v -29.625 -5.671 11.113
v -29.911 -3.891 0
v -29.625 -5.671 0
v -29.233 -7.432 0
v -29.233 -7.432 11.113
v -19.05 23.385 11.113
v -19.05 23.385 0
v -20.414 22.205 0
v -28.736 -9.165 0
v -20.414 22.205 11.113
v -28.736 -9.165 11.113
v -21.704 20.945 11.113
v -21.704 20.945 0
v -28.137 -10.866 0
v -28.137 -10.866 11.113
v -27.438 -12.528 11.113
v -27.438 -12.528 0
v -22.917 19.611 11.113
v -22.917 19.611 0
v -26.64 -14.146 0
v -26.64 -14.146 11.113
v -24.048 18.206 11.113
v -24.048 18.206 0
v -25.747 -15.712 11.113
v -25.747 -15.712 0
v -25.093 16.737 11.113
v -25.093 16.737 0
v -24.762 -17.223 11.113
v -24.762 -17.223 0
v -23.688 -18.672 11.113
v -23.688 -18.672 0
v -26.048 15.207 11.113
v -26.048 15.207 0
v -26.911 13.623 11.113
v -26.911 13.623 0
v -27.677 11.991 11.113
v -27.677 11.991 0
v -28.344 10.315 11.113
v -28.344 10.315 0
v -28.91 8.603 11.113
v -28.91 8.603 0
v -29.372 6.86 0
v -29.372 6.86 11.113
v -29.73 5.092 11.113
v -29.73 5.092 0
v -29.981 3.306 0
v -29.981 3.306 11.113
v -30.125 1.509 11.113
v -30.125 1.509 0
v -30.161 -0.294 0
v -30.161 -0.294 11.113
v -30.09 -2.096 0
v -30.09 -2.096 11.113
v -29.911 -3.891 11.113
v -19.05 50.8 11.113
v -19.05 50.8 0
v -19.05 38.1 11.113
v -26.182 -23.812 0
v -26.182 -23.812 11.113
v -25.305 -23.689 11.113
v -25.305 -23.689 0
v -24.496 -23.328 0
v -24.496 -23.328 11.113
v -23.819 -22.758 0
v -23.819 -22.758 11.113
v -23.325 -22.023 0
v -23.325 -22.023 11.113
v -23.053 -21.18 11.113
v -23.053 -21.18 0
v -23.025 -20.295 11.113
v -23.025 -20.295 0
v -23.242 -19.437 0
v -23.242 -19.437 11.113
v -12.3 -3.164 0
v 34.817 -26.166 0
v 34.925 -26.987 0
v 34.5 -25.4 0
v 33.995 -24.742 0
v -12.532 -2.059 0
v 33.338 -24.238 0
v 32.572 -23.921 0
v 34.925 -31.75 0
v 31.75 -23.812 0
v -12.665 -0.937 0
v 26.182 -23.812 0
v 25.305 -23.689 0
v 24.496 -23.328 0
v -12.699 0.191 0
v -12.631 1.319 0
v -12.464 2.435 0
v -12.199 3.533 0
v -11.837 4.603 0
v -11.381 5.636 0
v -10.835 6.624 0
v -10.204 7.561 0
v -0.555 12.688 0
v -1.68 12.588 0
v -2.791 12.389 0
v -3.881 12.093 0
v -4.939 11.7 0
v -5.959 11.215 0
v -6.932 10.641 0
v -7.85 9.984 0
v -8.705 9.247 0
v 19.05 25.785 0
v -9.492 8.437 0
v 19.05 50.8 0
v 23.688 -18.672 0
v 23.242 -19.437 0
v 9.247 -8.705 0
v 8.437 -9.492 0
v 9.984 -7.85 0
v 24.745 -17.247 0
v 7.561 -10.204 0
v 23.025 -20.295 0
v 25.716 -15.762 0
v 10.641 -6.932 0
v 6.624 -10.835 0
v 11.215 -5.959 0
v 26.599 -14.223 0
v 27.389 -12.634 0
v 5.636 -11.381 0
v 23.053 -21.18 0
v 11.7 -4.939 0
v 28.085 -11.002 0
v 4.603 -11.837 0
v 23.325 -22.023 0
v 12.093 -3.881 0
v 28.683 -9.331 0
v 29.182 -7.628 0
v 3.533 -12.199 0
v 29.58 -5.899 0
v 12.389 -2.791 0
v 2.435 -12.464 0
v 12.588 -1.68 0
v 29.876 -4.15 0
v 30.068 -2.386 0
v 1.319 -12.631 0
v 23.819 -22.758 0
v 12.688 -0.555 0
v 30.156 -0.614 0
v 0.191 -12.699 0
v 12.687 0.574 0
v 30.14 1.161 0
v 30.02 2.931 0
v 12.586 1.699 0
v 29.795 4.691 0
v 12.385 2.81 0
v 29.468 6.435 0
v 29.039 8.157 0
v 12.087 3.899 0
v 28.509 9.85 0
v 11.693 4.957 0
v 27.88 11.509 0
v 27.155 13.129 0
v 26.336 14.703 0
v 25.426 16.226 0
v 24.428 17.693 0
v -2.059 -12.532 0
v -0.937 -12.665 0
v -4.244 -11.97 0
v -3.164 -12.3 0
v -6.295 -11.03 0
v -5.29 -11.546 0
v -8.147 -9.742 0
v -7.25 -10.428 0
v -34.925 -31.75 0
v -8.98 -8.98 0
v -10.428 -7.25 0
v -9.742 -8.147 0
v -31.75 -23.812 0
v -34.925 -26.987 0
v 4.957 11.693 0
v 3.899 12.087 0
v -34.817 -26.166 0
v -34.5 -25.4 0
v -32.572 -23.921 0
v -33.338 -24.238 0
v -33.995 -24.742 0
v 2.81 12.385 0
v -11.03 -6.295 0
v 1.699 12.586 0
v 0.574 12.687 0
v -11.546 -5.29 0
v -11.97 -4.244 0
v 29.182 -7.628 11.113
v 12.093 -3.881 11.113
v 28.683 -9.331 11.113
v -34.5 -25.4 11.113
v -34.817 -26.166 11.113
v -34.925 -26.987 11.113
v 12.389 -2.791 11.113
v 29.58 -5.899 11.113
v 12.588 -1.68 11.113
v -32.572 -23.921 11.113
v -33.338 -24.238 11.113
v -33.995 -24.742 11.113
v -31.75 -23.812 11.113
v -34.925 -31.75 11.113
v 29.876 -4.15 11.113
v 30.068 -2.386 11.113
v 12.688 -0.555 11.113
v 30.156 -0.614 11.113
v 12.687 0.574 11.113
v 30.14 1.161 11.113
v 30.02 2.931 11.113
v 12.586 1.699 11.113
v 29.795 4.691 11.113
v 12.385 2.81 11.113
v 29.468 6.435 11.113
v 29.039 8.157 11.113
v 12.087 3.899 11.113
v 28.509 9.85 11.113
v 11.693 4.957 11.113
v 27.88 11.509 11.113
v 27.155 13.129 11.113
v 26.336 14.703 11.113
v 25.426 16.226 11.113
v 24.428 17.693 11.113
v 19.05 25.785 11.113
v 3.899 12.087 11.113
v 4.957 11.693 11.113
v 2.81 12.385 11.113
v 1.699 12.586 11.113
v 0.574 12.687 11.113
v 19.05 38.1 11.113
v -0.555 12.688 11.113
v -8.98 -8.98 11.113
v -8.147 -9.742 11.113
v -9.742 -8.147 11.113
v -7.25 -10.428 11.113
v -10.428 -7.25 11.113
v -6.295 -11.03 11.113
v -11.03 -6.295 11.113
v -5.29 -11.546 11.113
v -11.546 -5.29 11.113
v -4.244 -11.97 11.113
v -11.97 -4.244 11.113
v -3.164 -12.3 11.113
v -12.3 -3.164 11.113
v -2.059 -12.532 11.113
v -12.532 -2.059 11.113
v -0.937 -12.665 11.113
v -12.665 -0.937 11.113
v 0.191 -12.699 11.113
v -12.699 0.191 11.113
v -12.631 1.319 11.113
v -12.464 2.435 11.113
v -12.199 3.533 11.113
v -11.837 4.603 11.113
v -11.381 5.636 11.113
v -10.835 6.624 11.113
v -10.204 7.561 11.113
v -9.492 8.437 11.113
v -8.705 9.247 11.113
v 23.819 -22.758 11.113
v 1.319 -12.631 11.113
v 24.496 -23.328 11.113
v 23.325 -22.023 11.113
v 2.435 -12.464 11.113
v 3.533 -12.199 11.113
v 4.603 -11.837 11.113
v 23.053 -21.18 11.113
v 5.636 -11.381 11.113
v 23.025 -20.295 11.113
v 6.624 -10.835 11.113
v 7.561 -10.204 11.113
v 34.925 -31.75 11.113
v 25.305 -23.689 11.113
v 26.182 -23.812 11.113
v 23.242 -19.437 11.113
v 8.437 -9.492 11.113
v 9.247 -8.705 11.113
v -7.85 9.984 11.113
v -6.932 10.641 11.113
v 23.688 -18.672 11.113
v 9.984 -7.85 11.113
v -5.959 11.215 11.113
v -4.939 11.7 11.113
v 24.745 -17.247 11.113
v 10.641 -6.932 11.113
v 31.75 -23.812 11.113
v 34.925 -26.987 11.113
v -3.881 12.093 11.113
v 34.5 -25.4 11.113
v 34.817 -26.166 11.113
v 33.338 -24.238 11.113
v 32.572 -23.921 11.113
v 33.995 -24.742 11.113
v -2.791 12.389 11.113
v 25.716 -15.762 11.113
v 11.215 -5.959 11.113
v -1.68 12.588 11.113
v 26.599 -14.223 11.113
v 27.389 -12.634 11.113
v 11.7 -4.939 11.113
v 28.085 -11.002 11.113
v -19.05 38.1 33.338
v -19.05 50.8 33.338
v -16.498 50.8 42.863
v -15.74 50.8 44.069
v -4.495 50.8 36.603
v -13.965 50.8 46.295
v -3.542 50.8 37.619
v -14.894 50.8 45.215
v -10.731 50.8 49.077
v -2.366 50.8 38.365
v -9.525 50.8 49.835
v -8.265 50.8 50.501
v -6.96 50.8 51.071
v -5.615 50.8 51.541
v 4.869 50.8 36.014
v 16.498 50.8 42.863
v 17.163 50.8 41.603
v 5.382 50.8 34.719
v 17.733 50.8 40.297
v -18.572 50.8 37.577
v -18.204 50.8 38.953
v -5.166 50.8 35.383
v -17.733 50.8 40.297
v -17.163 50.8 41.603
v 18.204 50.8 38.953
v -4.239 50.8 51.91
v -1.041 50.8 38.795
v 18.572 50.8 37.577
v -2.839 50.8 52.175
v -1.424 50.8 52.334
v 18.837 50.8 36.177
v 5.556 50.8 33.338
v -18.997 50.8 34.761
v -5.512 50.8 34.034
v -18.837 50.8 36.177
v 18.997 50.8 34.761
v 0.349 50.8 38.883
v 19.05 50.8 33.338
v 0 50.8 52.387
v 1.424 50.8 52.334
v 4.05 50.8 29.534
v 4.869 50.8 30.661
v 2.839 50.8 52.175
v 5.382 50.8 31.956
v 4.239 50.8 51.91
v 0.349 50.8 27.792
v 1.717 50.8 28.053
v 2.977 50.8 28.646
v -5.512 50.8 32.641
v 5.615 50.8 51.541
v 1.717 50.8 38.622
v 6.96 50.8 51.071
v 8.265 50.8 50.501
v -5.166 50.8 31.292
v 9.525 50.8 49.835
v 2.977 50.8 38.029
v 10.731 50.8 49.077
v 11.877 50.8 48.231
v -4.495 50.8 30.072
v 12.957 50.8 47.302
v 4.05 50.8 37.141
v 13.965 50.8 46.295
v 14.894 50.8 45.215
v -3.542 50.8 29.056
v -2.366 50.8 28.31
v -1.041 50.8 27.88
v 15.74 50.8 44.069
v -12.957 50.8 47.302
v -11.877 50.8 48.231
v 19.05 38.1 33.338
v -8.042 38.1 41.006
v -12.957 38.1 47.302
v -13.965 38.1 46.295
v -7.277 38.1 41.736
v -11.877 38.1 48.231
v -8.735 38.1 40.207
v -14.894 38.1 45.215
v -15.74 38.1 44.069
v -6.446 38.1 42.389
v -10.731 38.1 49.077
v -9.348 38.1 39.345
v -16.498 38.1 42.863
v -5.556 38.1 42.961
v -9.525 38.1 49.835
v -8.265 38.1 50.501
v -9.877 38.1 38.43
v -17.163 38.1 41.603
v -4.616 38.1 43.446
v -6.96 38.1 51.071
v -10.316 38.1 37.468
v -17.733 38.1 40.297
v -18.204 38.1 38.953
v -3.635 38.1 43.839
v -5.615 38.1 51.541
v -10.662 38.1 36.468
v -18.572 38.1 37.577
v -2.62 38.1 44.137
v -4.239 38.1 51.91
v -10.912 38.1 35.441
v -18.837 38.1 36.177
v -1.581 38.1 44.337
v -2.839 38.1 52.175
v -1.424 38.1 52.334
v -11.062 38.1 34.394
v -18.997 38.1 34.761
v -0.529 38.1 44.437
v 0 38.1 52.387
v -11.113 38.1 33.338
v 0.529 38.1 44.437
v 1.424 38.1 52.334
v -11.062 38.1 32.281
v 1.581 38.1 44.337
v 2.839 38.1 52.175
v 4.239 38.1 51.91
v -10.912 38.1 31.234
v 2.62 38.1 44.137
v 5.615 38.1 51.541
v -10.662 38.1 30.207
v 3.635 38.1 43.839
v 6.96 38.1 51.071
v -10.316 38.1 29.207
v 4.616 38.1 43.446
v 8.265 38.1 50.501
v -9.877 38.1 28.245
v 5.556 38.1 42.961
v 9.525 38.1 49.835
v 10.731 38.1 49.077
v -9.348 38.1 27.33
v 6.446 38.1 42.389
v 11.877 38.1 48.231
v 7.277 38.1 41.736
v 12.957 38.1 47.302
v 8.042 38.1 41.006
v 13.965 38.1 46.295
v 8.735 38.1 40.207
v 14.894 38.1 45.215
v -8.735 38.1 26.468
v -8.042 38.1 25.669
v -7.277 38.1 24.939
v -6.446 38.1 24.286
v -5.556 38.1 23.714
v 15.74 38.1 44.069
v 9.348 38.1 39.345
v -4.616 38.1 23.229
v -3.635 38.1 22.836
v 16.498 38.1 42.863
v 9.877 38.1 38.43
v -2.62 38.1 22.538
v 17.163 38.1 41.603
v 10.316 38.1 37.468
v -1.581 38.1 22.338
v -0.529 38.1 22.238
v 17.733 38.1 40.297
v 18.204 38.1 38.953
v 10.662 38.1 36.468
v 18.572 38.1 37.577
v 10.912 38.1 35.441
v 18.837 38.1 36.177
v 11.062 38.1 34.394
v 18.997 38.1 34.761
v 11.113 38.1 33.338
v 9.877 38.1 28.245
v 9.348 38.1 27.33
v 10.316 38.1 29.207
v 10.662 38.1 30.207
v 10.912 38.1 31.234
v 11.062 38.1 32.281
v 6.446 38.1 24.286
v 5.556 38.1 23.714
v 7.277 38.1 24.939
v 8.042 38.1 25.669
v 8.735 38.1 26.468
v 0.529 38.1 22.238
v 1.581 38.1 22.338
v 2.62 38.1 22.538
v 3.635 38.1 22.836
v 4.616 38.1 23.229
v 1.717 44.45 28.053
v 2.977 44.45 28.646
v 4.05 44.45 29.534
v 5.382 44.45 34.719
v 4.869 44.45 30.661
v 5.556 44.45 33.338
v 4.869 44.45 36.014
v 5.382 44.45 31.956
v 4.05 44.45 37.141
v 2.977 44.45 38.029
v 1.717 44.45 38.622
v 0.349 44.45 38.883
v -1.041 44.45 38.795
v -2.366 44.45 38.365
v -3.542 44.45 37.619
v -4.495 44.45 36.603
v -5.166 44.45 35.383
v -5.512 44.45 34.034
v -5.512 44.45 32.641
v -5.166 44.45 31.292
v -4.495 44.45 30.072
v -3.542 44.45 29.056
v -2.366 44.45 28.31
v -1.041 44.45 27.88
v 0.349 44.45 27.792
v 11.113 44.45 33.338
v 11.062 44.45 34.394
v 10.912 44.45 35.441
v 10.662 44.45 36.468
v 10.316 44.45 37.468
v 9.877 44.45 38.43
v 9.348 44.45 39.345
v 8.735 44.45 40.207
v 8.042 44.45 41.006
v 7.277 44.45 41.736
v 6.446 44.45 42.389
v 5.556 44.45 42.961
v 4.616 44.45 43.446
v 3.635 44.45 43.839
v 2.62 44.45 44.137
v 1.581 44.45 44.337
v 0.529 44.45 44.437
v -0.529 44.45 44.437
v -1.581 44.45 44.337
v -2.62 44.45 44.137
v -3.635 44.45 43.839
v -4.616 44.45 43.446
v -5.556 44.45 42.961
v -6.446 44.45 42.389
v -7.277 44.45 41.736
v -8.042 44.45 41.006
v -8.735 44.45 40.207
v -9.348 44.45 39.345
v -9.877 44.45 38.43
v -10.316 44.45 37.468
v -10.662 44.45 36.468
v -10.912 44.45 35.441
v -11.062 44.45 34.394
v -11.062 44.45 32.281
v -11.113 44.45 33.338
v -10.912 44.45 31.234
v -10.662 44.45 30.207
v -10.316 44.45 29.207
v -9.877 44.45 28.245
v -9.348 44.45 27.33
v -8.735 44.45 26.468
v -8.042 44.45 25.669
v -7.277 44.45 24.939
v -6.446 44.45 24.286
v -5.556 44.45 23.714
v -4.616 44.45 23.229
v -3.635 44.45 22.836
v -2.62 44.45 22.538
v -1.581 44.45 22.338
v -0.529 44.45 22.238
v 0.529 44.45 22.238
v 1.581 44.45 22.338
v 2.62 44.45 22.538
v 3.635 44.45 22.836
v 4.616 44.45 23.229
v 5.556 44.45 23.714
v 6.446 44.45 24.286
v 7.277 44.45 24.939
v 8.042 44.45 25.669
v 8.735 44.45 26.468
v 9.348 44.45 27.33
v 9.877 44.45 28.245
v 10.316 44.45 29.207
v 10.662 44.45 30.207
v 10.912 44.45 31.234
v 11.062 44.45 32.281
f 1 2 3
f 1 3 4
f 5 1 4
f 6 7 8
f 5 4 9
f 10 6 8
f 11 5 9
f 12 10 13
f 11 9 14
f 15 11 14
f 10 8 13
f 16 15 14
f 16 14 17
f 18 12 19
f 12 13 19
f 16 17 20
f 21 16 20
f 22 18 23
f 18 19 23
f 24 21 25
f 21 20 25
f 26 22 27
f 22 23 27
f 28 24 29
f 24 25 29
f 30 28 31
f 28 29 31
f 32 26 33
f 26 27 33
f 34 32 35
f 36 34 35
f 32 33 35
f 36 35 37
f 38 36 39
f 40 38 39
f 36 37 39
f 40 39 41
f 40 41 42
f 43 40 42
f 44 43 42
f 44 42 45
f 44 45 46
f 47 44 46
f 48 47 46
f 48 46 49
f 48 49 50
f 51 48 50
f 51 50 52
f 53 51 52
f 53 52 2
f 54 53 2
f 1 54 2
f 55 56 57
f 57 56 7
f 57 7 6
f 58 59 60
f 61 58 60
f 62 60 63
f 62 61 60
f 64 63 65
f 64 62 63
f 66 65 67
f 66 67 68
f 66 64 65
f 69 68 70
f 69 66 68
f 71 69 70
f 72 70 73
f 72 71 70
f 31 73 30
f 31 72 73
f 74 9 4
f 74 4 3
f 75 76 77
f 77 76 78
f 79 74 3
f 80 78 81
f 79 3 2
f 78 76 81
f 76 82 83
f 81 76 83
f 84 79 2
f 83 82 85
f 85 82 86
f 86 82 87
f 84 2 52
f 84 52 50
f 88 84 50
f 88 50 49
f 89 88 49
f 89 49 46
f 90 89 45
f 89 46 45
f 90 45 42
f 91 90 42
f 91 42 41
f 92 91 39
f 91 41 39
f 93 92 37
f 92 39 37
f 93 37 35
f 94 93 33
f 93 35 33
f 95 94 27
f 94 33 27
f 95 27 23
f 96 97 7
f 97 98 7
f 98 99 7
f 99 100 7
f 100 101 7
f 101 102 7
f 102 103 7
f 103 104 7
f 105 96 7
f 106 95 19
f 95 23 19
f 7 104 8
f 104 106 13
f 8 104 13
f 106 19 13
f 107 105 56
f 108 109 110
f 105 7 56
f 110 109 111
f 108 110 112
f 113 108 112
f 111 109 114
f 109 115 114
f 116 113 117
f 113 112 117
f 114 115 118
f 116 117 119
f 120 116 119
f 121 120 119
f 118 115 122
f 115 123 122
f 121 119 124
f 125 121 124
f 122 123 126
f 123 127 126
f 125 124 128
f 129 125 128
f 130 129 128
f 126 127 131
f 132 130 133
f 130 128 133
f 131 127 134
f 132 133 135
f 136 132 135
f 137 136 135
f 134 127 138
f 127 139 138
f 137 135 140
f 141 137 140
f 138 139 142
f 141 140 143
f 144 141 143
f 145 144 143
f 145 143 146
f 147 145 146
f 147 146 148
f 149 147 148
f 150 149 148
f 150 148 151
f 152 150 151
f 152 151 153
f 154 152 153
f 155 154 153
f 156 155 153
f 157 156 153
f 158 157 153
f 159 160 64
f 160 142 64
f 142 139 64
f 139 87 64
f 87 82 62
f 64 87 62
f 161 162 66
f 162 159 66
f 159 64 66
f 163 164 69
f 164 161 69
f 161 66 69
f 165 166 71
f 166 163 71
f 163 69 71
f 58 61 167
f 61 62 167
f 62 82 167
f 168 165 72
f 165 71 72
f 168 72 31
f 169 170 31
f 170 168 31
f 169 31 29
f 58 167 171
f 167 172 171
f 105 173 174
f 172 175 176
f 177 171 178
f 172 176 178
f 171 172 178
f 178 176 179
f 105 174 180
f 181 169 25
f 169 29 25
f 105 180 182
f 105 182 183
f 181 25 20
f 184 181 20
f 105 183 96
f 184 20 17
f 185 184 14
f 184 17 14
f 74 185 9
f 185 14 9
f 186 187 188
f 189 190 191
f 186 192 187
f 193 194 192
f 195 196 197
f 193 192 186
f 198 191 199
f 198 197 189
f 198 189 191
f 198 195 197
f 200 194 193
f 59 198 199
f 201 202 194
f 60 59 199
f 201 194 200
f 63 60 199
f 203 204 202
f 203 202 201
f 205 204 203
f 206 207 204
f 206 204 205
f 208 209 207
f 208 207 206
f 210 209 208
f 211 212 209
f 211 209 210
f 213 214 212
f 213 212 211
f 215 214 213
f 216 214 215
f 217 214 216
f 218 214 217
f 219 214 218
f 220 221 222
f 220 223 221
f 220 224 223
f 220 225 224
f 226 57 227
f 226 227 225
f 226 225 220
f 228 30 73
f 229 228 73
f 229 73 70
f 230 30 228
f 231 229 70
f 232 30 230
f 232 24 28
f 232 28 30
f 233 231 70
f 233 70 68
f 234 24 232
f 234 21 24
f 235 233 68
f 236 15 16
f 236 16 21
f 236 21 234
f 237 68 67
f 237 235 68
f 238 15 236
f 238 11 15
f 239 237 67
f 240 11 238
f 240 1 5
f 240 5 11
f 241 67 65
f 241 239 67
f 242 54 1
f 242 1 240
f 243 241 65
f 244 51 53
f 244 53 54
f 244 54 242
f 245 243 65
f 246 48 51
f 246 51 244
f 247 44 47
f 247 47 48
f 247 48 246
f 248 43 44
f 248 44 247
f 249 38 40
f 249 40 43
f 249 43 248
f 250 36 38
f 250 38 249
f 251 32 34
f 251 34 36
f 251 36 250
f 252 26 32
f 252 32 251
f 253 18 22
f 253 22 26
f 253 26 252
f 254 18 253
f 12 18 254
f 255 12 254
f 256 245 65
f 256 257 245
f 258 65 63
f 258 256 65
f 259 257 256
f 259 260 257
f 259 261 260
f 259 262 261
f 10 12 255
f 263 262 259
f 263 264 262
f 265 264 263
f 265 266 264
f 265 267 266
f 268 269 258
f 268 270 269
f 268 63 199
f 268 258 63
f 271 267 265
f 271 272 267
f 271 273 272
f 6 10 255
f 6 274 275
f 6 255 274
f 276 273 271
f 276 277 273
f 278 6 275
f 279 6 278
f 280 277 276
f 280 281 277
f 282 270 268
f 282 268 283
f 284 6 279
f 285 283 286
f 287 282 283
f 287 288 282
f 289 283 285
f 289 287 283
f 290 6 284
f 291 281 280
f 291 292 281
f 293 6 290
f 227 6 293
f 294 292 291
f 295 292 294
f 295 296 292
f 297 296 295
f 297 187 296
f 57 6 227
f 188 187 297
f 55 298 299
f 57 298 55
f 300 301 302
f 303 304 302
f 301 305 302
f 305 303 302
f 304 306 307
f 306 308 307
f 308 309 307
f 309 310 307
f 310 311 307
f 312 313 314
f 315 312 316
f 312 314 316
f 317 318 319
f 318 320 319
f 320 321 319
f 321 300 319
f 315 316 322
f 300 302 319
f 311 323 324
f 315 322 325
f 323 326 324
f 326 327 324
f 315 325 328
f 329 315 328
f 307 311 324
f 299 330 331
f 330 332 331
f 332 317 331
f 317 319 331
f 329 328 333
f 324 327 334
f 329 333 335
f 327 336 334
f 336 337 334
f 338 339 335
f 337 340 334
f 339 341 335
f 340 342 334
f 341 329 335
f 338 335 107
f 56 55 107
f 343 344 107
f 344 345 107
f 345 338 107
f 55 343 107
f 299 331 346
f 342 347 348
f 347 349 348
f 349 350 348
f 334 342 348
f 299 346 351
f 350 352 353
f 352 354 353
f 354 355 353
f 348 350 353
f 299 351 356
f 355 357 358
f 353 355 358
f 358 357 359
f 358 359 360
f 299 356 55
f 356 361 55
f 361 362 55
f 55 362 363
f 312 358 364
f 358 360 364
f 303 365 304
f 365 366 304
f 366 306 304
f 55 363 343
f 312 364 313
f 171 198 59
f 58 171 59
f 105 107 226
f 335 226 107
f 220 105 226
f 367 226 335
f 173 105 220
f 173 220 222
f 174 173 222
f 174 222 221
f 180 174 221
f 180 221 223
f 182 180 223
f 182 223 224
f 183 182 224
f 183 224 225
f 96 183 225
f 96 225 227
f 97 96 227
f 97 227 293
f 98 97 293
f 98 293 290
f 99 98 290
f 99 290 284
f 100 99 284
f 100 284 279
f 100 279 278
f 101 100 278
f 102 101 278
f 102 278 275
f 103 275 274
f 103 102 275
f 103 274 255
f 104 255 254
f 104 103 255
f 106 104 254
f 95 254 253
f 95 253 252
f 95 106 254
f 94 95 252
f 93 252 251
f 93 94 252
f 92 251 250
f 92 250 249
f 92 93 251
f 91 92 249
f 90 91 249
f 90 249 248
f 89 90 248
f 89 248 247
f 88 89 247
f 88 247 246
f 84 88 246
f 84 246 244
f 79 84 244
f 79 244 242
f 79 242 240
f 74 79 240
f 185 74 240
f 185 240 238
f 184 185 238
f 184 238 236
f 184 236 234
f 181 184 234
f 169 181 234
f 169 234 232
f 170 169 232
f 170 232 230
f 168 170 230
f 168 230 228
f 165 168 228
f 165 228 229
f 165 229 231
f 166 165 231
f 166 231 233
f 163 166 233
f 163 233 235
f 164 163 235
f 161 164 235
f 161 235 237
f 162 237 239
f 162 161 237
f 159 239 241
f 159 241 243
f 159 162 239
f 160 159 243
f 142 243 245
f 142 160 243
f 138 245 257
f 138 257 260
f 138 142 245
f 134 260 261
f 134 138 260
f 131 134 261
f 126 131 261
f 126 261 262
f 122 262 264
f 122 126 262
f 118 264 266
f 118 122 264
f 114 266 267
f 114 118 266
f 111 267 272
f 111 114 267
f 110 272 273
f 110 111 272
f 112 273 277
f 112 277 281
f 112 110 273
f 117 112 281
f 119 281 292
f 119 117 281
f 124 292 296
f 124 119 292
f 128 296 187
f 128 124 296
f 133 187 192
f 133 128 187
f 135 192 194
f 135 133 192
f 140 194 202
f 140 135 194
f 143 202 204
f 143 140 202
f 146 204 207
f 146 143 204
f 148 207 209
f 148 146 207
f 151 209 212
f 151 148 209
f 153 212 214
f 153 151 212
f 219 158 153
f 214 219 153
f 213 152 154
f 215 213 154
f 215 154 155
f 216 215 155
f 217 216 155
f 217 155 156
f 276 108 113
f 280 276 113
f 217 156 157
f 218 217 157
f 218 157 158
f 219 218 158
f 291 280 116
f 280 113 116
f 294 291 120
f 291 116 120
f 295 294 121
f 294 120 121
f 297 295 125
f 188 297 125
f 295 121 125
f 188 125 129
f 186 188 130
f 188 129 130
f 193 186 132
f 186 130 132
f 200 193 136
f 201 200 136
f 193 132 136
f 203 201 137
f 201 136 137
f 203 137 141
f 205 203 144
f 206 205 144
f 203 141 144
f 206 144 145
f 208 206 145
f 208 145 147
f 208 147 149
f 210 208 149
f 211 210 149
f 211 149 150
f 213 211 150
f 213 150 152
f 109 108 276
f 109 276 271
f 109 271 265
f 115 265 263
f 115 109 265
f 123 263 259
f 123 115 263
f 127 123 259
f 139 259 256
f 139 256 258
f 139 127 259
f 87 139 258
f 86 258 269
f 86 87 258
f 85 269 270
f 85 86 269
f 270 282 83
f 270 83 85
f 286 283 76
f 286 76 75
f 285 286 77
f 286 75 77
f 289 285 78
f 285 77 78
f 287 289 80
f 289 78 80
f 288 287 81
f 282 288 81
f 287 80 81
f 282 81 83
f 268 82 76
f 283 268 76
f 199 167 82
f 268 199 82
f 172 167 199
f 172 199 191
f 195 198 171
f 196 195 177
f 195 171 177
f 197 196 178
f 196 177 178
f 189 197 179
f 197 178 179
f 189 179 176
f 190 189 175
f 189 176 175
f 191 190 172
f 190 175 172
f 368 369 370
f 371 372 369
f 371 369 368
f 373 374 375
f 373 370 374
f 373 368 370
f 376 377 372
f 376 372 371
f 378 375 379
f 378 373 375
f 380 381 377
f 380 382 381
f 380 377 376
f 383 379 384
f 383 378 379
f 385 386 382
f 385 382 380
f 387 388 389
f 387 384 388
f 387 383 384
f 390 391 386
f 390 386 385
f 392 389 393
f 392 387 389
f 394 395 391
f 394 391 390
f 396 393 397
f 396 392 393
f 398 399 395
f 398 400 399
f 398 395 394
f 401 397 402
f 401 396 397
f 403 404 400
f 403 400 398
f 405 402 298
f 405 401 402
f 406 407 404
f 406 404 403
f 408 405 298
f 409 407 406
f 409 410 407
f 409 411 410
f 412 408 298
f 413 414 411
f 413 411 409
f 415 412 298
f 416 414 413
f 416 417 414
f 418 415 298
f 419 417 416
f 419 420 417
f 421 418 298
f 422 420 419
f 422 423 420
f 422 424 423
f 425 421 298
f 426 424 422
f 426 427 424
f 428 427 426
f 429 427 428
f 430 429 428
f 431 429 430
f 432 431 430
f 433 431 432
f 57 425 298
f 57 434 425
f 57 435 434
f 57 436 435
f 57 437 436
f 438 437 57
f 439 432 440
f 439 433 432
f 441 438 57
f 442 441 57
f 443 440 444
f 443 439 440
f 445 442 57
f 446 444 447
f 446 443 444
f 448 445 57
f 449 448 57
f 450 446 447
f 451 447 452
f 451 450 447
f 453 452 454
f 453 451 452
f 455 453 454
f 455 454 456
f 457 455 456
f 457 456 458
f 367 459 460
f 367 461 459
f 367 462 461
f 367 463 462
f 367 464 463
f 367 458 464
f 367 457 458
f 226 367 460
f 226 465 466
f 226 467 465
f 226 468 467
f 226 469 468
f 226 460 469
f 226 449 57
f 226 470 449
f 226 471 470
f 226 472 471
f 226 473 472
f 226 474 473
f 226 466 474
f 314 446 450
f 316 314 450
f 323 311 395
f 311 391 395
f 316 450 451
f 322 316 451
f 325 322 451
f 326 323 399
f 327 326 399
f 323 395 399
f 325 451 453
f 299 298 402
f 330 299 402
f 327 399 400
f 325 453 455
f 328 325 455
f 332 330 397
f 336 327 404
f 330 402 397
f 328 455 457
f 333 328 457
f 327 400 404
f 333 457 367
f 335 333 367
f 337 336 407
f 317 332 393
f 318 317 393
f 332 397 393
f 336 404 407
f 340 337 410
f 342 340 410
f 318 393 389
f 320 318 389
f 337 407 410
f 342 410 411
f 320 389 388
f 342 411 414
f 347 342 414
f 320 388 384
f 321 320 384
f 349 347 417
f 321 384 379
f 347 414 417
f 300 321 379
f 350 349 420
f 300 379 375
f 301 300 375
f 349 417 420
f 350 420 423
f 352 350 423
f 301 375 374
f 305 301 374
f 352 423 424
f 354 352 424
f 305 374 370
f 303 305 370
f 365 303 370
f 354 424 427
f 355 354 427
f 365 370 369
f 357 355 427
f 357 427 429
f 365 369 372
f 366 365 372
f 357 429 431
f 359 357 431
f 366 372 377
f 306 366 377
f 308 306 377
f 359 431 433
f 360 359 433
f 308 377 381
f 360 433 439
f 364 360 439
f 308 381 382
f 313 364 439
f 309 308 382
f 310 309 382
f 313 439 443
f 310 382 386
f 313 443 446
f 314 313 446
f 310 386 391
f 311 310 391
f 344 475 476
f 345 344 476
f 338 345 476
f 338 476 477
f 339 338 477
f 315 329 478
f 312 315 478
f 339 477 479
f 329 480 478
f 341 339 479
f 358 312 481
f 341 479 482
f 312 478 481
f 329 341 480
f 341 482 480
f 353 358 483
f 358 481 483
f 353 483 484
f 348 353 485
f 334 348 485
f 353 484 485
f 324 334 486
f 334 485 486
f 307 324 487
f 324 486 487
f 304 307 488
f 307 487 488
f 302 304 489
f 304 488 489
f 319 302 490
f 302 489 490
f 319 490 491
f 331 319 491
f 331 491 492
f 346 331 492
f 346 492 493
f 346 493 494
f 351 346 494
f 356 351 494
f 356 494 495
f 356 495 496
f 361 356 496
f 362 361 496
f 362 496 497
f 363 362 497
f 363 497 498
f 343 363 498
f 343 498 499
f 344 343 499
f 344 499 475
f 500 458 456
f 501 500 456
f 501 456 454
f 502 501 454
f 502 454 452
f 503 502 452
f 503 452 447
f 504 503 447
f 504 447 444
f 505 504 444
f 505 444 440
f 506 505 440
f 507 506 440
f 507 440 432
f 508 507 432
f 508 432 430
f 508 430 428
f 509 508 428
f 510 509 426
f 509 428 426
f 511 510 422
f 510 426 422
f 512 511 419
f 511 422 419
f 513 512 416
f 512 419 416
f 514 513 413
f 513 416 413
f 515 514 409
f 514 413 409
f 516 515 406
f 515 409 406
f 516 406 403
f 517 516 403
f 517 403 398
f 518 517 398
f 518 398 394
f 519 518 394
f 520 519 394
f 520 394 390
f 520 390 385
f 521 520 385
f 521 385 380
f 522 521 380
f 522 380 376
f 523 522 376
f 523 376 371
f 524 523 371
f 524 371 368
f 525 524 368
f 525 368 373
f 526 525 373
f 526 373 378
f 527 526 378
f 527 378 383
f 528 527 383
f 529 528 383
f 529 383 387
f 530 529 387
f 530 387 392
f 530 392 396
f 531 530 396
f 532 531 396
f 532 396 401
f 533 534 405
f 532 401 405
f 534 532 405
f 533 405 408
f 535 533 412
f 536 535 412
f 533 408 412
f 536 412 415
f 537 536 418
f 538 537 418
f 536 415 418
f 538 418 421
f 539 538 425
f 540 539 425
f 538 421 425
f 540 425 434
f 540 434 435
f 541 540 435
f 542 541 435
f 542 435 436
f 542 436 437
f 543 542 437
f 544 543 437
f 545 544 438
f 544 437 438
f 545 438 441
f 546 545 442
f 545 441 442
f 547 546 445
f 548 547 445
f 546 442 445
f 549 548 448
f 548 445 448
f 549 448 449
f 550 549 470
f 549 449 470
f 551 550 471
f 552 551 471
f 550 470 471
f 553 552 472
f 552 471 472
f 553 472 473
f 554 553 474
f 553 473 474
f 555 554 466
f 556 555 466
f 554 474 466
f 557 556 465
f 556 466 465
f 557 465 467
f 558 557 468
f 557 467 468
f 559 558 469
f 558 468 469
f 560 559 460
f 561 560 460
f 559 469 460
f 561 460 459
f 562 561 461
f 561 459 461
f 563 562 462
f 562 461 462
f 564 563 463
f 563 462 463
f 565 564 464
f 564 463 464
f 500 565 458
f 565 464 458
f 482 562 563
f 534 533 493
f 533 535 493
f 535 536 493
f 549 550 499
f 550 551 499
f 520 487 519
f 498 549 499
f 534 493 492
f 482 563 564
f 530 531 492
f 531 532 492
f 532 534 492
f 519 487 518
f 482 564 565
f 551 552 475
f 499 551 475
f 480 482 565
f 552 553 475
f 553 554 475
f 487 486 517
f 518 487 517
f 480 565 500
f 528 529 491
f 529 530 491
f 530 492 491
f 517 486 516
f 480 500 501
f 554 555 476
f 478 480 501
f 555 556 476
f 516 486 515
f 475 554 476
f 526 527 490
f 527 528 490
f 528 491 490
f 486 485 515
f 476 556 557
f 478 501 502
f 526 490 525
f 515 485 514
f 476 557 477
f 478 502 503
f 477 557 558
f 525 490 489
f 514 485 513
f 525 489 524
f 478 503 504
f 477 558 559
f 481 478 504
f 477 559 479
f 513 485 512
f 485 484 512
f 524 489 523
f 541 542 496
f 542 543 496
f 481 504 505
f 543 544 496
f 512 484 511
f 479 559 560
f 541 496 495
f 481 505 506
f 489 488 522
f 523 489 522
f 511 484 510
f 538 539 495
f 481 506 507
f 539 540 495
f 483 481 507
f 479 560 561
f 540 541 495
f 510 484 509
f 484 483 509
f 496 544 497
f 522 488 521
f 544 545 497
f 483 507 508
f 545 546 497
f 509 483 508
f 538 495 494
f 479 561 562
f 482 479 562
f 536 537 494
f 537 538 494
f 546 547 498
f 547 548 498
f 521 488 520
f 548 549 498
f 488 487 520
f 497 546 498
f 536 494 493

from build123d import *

# Parameters (mm, degrees)
PAD_DEPTH       = 11.1125
PAD001_DEPTH    = 12.7
SKETCH002_R     = 11.1125
POCKET_DEPTH    = 6.35
SKETCH003_R     = 5.55625
POCKET001_DEPTH = 6.351


with BuildPart() as part:
    # Sketch → Pad (new body)
    with BuildSketch(Plane.XY):
        with BuildLine():
            ThreePointArc((4.957324, 11.692516), (-8.980256, -8.980256), (11.692516, 4.957324))
            Line((24.428163, 17.692971), (11.692516, 4.957324))
            ThreePointArc((23.688223, -18.672024), (30.156258, -0.613607), (24.428163, 17.692971))
            ThreePointArc((23.688223, -18.672024), (23.325058, -22.023177), (26.181706, -23.8125))
            Line((31.75, -23.8125), (26.181706, -23.8125))
            ThreePointArc((34.925, -26.9875), (33.995064, -24.742436), (31.75, -23.8125))
            Line((34.925, -31.75), (34.925, -26.9875))
            Line((-34.925, -31.75), (34.925, -31.75))
            Line((-34.925, -31.75), (-34.925, -26.9875))
            ThreePointArc((-31.75, -23.8125), (-33.995064, -24.742436), (-34.925, -26.9875))
            Line((-31.75, -23.8125), (-26.181706, -23.8125))
            ThreePointArc((-26.181706, -23.8125), (-23.325058, -22.023177), (-23.688223, -18.672024))
            ThreePointArc((-19.05, 23.385335), (-29.980732, 3.306373), (-23.688223, -18.672024))
            Line((-19.05, 23.385335), (-19.05, 38.1))
            Line((-19.05, 38.1), (19.05, 38.1))
            Line((19.05, 38.1), (19.05, 25.785192))
            Line((19.05, 25.785192), (4.957324, 11.692516))
        make_face()
    extrude(amount=PAD_DEPTH)

    # Sketch001 → Pad001 (new body)
    with BuildSketch(Plane(origin=(0, 38.1, 0), x_dir=(-1, 0, 0), z_dir=(0, 1, 0))):
        with BuildLine():
            Line((-19.05, 0), (19.05, 0))
            Line((19.05, 0), (19.05, 11.1125))
            Line((19.049953, 33.337541), (19.05, 11.1125))
            ThreePointArc((19.049953, 33.337541), (-2.3e-05, 52.387477), (-19.05, 33.337541))
            Line((-19.05, 33.337541), (-19.05, 11.1125))
            Line((-19.05, 0), (-19.05, 11.1125))
        make_face()
    extrude(amount=PAD001_DEPTH)

    # Sketch002 → Pocket (cut)
    with BuildSketch(Plane.XZ.offset(-38.1)):
        with Locations((0, 33.3375)):
            Circle(SKETCH002_R)
    extrude(amount=-POCKET_DEPTH, mode=Mode.SUBTRACT)

    # Sketch003 → Pocket001 (cut, through all)
    with BuildSketch(Plane.XZ.offset(-44.45)):
        with Locations((0, 33.3375)):
            Circle(SKETCH003_R)
    extrude(amount=-POCKET001_DEPTH, mode=Mode.SUBTRACT)


solid = part.part
